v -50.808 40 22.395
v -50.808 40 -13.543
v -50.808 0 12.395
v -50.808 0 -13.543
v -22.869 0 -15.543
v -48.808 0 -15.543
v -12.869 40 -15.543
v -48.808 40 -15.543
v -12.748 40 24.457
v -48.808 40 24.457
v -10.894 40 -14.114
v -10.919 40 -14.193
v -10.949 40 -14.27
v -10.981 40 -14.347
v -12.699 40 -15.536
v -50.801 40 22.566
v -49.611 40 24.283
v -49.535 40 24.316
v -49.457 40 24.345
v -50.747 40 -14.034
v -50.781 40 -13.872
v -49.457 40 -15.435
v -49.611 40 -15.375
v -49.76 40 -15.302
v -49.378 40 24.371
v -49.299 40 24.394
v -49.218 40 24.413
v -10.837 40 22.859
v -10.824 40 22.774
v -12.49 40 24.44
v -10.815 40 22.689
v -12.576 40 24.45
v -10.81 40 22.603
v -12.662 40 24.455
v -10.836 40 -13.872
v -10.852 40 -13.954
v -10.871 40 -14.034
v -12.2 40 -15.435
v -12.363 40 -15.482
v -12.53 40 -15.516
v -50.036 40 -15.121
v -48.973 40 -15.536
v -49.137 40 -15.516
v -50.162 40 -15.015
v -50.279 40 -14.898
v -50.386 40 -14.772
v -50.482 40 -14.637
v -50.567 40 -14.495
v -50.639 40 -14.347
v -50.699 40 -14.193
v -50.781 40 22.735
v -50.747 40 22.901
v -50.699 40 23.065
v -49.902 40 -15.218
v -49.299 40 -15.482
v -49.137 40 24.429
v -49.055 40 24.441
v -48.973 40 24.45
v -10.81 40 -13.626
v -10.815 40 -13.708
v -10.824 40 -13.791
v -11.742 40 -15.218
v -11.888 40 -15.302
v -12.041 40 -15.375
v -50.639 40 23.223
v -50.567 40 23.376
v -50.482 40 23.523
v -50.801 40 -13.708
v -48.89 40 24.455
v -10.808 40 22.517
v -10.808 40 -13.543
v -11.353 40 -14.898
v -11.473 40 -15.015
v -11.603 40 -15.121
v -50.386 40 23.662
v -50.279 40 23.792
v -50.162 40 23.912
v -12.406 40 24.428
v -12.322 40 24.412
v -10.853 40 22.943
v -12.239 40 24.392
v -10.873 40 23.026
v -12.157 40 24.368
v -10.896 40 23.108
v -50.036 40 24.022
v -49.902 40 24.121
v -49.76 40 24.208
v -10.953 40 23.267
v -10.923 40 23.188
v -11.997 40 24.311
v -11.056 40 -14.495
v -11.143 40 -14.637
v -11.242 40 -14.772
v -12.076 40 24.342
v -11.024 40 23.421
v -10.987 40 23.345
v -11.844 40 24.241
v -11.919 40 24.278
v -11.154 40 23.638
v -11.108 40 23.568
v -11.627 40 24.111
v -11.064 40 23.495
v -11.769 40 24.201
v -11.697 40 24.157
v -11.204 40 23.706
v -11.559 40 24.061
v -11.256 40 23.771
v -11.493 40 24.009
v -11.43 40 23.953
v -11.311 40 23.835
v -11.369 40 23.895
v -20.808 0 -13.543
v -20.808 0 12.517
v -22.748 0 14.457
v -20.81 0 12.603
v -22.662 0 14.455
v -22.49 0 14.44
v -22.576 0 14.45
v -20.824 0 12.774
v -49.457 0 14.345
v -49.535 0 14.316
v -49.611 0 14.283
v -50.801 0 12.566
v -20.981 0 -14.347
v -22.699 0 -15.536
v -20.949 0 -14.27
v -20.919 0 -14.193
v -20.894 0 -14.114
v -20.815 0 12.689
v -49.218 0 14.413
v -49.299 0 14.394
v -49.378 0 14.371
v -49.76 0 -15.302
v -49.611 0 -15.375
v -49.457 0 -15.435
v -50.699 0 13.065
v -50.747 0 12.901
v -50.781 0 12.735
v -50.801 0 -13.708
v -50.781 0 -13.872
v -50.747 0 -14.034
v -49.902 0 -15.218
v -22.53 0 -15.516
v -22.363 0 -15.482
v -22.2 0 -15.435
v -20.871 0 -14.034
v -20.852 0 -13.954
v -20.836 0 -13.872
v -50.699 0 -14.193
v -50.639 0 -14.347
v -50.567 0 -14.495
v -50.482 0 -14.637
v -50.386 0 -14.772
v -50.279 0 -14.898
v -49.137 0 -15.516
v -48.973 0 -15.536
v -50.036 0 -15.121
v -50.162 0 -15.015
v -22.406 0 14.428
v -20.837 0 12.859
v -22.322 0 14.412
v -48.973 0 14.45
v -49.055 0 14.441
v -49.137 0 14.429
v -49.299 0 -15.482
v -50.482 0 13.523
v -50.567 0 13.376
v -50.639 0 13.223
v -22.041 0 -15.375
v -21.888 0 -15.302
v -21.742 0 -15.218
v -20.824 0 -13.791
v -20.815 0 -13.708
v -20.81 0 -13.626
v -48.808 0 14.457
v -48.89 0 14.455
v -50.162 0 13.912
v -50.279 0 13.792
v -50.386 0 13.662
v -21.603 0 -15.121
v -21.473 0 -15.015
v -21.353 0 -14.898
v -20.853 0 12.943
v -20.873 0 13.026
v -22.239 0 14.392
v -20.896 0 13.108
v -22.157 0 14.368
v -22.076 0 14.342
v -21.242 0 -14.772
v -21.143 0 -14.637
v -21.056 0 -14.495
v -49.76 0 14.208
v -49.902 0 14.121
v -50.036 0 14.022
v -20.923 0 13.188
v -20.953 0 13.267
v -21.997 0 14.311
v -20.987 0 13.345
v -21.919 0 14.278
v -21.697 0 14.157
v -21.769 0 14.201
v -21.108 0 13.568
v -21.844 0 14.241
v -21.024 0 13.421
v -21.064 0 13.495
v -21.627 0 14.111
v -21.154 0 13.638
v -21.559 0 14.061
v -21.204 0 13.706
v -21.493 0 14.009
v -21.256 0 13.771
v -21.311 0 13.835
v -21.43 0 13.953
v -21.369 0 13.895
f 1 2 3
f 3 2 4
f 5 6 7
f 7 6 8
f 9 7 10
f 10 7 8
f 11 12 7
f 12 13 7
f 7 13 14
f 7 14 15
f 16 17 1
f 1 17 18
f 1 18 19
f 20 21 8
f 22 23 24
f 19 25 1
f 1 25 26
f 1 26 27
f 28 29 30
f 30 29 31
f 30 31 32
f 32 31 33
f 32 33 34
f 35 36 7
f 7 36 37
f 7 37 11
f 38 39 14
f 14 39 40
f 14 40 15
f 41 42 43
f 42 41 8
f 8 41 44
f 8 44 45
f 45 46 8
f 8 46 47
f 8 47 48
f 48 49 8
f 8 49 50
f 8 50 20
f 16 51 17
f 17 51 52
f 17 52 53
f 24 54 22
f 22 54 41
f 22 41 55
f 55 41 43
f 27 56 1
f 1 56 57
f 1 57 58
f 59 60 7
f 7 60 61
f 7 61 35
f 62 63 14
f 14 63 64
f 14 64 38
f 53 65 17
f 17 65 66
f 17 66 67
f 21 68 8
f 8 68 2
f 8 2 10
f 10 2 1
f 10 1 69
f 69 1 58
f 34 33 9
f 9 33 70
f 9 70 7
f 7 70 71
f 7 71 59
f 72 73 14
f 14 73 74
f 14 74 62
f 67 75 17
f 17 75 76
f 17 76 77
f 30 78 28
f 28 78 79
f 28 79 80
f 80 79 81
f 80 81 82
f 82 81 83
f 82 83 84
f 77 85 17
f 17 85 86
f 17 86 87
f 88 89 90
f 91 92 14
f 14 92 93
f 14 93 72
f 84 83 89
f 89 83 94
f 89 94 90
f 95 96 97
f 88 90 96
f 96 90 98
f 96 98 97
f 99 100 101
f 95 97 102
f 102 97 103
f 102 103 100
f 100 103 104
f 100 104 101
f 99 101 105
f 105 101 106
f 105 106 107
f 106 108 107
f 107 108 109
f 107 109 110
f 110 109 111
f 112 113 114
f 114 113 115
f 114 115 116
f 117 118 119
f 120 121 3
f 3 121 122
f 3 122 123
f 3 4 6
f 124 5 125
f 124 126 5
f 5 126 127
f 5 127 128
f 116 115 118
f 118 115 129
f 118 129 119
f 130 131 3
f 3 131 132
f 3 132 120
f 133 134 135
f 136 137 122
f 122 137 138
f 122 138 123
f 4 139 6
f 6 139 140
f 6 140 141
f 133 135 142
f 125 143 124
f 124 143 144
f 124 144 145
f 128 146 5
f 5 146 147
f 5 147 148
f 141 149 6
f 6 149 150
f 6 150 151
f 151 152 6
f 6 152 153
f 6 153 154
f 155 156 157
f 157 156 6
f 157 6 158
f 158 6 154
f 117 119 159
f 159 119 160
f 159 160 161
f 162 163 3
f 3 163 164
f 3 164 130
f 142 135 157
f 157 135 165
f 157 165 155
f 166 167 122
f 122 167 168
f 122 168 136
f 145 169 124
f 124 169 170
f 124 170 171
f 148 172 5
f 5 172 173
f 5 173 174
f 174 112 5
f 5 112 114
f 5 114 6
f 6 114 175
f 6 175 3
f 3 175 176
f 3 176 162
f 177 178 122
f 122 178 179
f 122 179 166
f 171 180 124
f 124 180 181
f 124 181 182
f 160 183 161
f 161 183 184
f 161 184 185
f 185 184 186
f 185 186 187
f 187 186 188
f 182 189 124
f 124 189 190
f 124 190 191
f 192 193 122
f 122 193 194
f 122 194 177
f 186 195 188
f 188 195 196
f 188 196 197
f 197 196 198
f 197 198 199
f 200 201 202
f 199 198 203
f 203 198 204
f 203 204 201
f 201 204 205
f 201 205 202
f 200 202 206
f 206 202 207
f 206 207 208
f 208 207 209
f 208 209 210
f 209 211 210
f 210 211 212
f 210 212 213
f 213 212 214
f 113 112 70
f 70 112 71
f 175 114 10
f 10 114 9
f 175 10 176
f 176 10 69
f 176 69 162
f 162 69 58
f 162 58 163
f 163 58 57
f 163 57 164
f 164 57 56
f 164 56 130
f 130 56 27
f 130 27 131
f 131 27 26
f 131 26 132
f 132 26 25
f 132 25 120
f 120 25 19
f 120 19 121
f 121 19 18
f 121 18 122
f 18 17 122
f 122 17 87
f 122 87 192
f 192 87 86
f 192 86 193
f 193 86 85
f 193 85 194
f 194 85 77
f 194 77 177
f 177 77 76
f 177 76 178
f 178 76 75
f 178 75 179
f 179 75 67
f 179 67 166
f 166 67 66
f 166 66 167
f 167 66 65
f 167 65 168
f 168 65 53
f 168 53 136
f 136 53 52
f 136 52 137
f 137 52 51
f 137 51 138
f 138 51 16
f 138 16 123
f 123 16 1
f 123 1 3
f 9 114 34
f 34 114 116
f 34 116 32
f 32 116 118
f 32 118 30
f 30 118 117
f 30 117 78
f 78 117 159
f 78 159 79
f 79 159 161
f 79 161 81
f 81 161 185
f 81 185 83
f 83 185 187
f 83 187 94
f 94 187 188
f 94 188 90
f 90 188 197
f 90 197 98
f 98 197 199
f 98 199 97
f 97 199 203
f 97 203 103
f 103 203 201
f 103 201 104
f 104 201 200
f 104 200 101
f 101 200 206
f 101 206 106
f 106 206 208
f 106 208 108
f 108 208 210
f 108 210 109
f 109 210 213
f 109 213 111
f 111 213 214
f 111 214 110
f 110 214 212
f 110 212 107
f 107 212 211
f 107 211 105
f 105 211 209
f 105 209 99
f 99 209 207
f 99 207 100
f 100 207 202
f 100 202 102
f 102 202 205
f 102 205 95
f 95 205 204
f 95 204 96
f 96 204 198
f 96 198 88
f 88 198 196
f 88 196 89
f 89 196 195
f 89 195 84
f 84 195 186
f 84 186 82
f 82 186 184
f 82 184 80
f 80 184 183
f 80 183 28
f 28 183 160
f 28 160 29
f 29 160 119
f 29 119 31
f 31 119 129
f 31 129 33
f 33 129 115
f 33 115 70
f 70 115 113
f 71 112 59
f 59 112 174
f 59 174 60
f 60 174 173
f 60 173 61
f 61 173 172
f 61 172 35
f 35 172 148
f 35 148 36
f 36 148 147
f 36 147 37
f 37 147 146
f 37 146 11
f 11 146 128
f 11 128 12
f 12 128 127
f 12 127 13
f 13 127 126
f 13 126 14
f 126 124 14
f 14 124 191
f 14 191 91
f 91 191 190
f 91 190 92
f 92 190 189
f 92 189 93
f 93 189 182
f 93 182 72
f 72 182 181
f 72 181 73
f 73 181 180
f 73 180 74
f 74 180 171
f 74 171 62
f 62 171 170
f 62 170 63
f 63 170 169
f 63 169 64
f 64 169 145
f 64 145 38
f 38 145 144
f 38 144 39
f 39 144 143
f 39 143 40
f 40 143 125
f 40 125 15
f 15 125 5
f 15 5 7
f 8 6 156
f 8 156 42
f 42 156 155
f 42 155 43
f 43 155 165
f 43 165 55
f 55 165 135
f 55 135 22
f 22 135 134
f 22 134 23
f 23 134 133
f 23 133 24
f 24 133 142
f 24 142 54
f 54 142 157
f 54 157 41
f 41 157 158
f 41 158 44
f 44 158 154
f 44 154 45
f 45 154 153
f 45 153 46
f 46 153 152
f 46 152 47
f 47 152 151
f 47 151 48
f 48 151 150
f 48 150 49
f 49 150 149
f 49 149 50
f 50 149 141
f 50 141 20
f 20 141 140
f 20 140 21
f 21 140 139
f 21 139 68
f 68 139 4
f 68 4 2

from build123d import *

# Parameters (mm, degrees)
SKETCH_1_W          = 40
SKETCH_1_H          = 40
EXTRUDE_1_DEPTH     = 40
CUT_EXTRUDE_1_DEPTH = 77.035731628
CUT_EXTRUDE_2_DEPTH = 62.629021291
FILLET_1_R          = 2


with BuildPart() as part:
    # Эскиз1 → Бобышка-Вытянуть1 (new body)
    with BuildSketch(Plane(origin=(0, 0, 0), x_dir=(1, 0, 0), z_dir=(0, 1, 0))):
        with Locations((-30.807799443, -4.456824513)):
            Rectangle(SKETCH_1_W, SKETCH_1_H)
    extrude(amount=EXTRUDE_1_DEPTH)

    # Эскиз2 → Вырез-Вытянуть1 (cut, through all)
    with BuildSketch(Plane(origin=(0, 0, -15.543175487), x_dir=(-1, 0, 0), z_dir=(0, 0, -1))):
        Polygon((10.807799443, 40), (10.807799443, 0), (20.807799443, 0), align=None)
    extrude(amount=-CUT_EXTRUDE_1_DEPTH, mode=Mode.SUBTRACT)

    # Эскиз3 → Вырез-Вытянуть2 (cut, through all)
    with BuildSketch(Plane.ZY.offset(50.807799443)):
        Polygon((24.456824513, 0), (14.456824513, 0), (24.456824513, 40), align=None)
    extrude(amount=-CUT_EXTRUDE_2_DEPTH, mode=Mode.SUBTRACT)

    # Скругление1
    fillet_1_edges = [part.edges().sort_by_distance(p)[0] for p in [
        (-15.807799443, 20, -15.543175487),
        (-15.807799443, 20, 19.456824513),
        (-50.807799443, 20, 19.456824513),
        (-50.807799443, 20, -15.543175487),
    ]]
    fillet(fillet_1_edges, radius=FILLET_1_R)


solid = part.part
